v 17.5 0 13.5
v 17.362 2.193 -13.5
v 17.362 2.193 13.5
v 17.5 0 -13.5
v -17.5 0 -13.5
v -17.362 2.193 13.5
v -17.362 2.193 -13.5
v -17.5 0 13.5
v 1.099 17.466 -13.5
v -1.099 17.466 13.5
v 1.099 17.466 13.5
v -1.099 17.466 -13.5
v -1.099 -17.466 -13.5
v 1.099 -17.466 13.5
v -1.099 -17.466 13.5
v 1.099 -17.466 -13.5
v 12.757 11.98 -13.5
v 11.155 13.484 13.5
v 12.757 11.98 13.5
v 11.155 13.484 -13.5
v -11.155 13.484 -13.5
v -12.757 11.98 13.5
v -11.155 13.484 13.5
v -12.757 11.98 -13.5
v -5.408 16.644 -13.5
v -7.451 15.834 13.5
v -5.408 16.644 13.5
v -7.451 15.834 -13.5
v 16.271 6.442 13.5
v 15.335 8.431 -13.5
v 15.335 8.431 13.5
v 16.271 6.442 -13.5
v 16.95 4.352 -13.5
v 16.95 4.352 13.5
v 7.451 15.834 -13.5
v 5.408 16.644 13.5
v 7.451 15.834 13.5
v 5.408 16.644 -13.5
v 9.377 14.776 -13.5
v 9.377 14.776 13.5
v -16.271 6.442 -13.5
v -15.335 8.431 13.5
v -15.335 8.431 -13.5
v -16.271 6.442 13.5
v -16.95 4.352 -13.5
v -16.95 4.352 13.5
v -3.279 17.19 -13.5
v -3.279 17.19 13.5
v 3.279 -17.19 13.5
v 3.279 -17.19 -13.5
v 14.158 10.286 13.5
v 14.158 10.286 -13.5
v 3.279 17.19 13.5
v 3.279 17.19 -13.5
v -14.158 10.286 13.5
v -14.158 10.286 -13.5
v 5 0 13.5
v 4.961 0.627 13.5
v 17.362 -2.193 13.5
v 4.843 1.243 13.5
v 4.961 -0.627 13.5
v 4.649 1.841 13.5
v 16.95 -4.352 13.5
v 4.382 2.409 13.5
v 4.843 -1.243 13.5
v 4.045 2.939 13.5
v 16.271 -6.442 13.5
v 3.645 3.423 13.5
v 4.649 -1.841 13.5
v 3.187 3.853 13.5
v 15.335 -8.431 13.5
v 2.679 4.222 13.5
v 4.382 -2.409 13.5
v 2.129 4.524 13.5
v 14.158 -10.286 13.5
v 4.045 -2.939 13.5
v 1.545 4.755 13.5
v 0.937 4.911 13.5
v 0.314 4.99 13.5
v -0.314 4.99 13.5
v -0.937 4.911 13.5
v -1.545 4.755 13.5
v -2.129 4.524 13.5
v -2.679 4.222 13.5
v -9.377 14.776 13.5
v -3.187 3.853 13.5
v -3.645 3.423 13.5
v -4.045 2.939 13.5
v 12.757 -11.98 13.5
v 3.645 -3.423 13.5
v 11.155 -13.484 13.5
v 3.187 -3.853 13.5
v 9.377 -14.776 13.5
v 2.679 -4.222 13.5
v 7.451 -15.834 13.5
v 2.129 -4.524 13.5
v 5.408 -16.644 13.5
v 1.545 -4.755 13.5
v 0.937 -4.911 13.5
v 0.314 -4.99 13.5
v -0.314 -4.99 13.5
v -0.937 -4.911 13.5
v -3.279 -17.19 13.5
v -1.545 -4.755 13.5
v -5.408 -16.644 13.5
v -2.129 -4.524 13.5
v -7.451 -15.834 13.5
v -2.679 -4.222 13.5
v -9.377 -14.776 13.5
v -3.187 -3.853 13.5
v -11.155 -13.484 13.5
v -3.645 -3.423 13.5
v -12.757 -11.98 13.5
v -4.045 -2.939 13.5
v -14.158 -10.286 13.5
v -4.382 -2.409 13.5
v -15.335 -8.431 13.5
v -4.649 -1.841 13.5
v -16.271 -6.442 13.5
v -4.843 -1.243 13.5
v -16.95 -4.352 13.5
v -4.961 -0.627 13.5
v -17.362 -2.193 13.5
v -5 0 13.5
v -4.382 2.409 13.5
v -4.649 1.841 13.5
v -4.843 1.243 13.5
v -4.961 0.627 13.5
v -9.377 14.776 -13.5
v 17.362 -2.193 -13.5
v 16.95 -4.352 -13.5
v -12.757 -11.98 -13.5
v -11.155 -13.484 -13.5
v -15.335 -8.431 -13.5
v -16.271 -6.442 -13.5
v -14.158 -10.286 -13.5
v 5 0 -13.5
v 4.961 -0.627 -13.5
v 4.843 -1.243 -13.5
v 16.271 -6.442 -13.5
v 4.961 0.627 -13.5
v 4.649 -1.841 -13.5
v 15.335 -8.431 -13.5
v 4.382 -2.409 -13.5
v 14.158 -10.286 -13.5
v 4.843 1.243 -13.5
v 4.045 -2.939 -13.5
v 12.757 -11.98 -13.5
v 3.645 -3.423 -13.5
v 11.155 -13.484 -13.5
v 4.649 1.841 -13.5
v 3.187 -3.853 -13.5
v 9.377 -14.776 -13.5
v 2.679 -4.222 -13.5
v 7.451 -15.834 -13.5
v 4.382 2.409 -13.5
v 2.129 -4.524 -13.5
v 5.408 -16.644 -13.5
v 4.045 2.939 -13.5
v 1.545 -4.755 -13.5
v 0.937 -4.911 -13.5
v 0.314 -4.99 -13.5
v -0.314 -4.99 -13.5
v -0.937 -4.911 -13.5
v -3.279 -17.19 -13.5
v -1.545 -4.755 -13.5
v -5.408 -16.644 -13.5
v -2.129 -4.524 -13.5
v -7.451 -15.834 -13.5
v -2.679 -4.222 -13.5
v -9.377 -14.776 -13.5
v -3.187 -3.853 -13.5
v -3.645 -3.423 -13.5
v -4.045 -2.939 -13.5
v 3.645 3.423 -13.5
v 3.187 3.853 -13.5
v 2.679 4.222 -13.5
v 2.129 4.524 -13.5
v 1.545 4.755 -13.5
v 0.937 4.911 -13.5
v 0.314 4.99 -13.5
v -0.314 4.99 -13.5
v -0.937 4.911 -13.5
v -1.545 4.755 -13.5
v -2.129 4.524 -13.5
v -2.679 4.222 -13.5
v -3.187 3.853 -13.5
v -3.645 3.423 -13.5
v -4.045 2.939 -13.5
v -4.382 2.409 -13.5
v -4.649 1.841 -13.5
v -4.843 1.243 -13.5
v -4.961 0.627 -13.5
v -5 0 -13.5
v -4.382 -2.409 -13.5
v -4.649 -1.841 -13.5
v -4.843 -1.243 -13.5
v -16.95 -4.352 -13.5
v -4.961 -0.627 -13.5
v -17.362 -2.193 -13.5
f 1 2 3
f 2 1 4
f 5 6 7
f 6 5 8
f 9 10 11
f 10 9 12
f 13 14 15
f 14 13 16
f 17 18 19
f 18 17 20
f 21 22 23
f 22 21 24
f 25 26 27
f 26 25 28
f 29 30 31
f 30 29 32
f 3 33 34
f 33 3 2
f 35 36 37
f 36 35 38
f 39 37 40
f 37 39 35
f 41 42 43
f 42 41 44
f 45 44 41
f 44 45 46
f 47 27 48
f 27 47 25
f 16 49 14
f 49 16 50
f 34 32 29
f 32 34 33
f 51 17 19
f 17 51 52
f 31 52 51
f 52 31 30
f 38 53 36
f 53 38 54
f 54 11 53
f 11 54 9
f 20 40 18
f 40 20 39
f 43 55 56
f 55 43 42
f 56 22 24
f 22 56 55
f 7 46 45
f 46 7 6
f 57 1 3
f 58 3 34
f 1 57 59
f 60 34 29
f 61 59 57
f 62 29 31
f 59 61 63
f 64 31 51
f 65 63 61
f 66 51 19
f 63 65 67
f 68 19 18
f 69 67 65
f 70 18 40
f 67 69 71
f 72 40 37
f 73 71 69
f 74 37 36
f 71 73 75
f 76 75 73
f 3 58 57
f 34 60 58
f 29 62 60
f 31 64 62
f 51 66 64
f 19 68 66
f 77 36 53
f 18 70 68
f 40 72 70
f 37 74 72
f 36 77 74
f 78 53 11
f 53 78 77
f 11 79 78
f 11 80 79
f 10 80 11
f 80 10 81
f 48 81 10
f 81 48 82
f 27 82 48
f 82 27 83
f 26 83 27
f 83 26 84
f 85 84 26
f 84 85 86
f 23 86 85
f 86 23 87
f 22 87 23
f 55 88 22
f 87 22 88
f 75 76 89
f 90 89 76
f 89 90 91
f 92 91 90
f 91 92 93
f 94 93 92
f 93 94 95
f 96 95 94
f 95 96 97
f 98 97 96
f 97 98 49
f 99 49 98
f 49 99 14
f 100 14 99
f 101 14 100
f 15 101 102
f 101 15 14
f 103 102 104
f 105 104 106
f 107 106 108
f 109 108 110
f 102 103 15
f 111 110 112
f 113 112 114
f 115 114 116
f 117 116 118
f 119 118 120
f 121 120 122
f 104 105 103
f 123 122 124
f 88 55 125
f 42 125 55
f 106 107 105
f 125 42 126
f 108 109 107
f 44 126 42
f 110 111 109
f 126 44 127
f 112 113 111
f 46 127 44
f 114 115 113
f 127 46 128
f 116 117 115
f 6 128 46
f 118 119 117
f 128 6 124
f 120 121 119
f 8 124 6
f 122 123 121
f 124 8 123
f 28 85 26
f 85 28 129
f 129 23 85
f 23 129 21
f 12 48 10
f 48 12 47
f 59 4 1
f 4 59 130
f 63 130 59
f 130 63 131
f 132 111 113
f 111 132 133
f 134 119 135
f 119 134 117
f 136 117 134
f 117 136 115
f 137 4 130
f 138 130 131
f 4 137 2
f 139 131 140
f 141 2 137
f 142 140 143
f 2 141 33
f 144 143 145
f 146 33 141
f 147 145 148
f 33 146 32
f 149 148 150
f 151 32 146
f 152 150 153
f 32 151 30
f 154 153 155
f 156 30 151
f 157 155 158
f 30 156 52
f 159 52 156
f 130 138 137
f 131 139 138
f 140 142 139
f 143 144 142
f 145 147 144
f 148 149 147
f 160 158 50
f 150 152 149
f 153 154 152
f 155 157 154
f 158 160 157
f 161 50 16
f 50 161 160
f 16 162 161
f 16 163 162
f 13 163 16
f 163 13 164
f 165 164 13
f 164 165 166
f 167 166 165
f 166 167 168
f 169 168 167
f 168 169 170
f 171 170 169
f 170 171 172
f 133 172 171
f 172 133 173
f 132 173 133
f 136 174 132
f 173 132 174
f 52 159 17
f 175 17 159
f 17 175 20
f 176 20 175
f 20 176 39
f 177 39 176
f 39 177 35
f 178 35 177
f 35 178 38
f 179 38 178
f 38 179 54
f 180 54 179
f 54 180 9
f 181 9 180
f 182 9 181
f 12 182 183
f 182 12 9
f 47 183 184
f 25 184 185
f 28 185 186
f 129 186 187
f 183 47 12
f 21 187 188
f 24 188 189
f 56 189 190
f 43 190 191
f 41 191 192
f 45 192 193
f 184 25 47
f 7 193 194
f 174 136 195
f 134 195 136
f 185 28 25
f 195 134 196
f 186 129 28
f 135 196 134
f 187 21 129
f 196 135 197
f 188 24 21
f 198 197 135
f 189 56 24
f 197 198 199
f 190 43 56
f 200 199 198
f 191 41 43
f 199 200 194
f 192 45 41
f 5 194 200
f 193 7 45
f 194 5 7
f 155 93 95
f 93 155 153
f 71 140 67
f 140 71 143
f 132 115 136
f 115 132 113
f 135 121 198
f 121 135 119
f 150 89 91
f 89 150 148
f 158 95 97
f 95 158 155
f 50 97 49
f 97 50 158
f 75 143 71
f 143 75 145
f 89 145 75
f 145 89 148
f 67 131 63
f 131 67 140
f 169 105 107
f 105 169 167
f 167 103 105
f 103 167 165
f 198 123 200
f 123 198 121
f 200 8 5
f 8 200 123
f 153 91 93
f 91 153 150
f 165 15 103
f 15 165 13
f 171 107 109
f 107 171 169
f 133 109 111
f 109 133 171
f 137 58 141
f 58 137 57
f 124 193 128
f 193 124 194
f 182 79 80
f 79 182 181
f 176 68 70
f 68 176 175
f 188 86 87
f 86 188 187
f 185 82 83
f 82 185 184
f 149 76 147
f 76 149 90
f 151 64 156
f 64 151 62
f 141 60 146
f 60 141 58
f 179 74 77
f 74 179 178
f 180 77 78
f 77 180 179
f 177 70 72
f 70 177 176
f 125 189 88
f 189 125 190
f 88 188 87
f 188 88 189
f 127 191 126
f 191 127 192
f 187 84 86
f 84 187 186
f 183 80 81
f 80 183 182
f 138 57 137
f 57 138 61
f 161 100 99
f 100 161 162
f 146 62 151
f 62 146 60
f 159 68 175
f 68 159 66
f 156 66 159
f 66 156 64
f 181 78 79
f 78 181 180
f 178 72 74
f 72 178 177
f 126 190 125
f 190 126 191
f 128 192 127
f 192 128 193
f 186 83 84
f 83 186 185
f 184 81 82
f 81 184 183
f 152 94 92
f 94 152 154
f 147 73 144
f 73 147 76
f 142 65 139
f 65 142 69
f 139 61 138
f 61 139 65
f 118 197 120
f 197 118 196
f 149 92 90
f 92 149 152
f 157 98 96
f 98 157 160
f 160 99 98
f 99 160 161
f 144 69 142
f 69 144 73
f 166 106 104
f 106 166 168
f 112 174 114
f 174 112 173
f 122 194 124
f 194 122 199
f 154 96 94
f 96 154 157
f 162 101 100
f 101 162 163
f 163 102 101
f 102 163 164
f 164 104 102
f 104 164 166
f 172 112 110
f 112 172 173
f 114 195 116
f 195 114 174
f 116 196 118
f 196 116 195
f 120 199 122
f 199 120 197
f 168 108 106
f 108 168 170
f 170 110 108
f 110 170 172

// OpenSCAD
$fn = 50;


difference() {
	union() {
		translate(v = [0, 0, -13.5000000000]) {
			cylinder(h = 27, r = 17.5000000000);
		}
	}
	union() {
		translate(v = [0, 0, -100.0000000000]) {
			cylinder(h = 200, r = 5);
		}
	}
}
